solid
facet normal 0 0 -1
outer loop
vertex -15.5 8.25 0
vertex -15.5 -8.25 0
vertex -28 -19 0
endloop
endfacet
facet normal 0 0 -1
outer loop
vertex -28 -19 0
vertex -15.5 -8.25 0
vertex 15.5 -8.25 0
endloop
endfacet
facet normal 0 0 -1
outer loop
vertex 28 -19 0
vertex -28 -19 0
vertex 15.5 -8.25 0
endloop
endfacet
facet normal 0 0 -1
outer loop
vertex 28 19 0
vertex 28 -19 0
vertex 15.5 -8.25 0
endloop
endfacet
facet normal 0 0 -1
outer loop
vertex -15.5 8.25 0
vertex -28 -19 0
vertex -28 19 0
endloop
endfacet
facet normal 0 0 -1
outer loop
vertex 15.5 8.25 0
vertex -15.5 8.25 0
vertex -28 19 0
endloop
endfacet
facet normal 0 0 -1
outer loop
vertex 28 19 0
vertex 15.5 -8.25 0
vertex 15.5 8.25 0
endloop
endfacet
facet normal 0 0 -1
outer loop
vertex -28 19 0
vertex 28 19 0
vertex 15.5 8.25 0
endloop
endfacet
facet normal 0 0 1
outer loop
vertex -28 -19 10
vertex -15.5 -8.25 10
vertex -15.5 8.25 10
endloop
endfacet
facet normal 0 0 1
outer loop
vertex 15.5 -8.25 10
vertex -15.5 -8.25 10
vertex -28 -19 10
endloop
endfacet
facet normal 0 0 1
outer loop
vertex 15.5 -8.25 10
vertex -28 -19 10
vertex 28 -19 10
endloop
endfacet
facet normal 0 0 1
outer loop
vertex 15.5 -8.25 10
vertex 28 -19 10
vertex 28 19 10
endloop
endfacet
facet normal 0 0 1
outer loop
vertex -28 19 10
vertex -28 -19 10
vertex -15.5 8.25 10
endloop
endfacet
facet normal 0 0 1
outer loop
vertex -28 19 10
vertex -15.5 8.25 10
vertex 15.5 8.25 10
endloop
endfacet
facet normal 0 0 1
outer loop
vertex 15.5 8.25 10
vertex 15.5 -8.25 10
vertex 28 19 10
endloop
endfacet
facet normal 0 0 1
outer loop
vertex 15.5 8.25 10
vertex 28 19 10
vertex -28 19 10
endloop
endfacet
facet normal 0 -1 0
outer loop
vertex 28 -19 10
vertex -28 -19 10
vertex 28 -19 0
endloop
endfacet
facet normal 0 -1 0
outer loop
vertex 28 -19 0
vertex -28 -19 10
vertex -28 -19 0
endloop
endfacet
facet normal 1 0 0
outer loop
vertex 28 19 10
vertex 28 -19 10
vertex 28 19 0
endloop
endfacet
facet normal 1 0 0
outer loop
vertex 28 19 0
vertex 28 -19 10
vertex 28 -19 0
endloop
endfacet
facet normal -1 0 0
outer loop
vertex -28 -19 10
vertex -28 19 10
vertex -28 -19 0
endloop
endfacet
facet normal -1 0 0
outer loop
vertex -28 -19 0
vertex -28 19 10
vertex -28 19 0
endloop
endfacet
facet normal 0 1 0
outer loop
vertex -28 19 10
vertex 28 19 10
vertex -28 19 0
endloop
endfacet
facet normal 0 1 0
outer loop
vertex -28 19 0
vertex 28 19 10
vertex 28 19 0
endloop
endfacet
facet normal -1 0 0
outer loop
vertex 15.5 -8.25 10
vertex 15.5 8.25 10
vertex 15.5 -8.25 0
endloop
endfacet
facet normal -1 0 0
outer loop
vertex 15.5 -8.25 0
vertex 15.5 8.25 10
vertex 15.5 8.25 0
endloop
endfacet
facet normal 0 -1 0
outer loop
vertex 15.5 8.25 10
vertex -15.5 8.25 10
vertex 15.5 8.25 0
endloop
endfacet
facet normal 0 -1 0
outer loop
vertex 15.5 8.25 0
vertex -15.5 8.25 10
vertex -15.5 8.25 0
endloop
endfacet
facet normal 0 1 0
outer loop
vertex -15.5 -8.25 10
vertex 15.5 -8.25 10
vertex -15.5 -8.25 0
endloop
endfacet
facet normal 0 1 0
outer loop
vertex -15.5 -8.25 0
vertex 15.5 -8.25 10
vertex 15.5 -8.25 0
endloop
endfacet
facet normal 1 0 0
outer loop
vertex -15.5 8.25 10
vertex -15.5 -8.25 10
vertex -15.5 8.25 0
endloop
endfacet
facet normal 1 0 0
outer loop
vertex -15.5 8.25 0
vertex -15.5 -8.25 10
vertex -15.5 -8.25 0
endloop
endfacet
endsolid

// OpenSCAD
polyhedron(points=[[-28.0, -19.0, 0.0], [28.0, -19.0, 0.0], [28.0, 19.0, 0.0], [-28.0, 19.0, 0.0], [15.5, -8.25, 0.0], [15.5, 8.25, 0.0], [-15.5, 8.25, 0.0], [-15.5, -8.25, 0.0], [-28.0, -19.0, 10.0], [28.0, -19.0, 10.0], [28.0, 19.0, 10.0], [-28.0, 19.0, 10.0], [15.5, -8.25, 10.0], [15.5, 8.25, 10.0], [-15.5, 8.25, 10.0], [-15.5, -8.25, 10.0]], faces=[[6, 7, 0], [0, 7, 4], [1, 0, 4], [2, 1, 4], [6, 0, 3], [5, 6, 3], [2, 4, 5], [3, 2, 5], [8, 15, 14], [12, 15, 8], [12, 8, 9], [12, 9, 10], [11, 8, 14], [11, 14, 13], [13, 12, 10], [13, 10, 11], [9, 8, 1], [1, 8, 0], [10, 9, 2], [2, 9, 1], [8, 11, 0], [0, 11, 3], [11, 10, 3], [3, 10, 2], [12, 13, 4], [4, 13, 5], [13, 14, 5], [5, 14, 6], [15, 12, 7], [7, 12, 4], [14, 15, 6], [6, 15, 7]], convexity=30);
